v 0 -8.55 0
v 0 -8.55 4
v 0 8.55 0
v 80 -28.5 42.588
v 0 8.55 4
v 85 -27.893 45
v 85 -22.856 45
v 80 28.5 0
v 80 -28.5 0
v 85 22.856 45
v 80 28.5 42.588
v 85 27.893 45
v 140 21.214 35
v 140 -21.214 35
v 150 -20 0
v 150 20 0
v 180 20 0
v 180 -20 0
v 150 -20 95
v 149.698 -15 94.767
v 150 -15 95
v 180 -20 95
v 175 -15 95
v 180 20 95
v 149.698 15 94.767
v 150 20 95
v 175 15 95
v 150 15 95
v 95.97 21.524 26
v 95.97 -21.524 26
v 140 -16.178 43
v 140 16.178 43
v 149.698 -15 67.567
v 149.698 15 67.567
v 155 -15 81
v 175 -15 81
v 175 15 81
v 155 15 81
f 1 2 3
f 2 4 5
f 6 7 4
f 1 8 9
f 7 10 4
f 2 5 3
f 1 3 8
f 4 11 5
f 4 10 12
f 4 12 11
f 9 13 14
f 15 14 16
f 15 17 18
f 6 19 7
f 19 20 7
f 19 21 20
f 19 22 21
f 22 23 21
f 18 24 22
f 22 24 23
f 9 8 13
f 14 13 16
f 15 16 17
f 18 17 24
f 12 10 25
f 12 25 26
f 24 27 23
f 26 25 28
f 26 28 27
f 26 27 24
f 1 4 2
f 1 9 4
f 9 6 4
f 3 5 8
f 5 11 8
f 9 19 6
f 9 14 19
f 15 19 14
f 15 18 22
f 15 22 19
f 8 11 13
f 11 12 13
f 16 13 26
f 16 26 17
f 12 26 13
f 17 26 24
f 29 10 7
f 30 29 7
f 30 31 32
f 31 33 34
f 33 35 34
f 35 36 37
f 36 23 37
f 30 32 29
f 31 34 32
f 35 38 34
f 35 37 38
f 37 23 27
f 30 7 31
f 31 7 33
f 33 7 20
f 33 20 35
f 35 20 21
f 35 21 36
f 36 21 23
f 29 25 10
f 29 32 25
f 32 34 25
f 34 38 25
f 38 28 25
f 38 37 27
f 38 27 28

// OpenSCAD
// Solid Heel, Support-Free Hollow High Heel Door Wedge

/* [Primary Dimensions] */
length = 180;            
width = 57;              
height = 95;
wall_thickness = 5;      
toe_coverage = 85;       // Distance the top cover extends from the tip
vamp_h = 45;             // Height of the shoe opening
overhang_angle = 30;     // Internal bridging angle for support-free printing

/* [Heel Adjustments] */
heel_width = 40;         // Width of the heel block
heel_bottom_length = 30; // Length of the heel base
heel_top_length = 30;    // Length of the heel top rim
insole_depth = 14;       // Depth of the foot cavity inside the heel

/* [Profile Adjustments] */
ball_l = 80;             // Length of the flat front section before the arch
arch_l = 140;            // Location of the arch peak
arch_h = 35;             // Height of the arch underneath

/* [Calculated Coordinates] */
heel_f_b = length - heel_bottom_length;
heel_f_t = length - heel_top_length;

// Calculate overhang offset for support-free printing inside the toe
dz = vamp_h - 26; 
dx = dz * tan(overhang_angle);

// Outer side silhouette profile
points_side = [
    [0, 0],
    [ball_l, 0],
    [arch_l, arch_h],
    [heel_f_b, 0],
    [length, 0],
    [length, height],
    [heel_f_t, height],
    [toe_coverage, vamp_h],
    [0, 4] // 4mm-high toe tip slides under the door
];

// Inner cavity side profile (Strictly routed to prevent bottom holes)
cavity_side = [
    [toe_coverage, vamp_h],
    // Parametric internal slope down from the opening
    [toe_coverage + dx, vamp_h - dz], 
    // Explicitly routed over the arch peak to guarantee no bottom holes
    [arch_l, arch_h + wall_thickness + 3],    
    // Connects into the solid heel block
    [heel_f_t + wall_thickness, height - insole_depth],
    [length - wall_thickness, height - insole_depth],
    // Vertical escapes to cleanly subtract from the top
    [length - wall_thickness, height + 10], 
    [toe_coverage, height + 10]            
];

// Outer top profile (controls Y-axis tapering)
points_top = [
    [0, width * 0.15],             
    [ball_l, width * 0.5],         // Widest point at the ball
    [heel_f_t, heel_width * 0.5],  // Tapering into the adjustable heel
    [length, heel_width * 0.5],    
    [length, -heel_width * 0.5],
    [heel_f_t, -heel_width * 0.5],
    [ball_l, -width * 0.5],
    [0, -width * 0.15]
];

module shoe_body() {
    intersection() {
        rotate([90, 0, 0])
            linear_extrude(height = width * 2, center = true)
            polygon(points_side);

        translate([0, 0, -10])
            linear_extrude(height = height * 2)
            polygon(points_top);
    }
}

module hollow_cavity() {
    intersection() {
        rotate([90, 0, 0])
            linear_extrude(height = width * 2, center = true)
            polygon(cavity_side);

        // Shrink the top profile to maintain wall thickness on the sides
        translate([0, 0, -10])
            linear_extrude(height = height * 2)
            offset(delta = -wall_thickness) polygon(points_top);
    }
}

// Execute final boolean subtraction
difference() {
    shoe_body();
    hollow_cavity();
}
